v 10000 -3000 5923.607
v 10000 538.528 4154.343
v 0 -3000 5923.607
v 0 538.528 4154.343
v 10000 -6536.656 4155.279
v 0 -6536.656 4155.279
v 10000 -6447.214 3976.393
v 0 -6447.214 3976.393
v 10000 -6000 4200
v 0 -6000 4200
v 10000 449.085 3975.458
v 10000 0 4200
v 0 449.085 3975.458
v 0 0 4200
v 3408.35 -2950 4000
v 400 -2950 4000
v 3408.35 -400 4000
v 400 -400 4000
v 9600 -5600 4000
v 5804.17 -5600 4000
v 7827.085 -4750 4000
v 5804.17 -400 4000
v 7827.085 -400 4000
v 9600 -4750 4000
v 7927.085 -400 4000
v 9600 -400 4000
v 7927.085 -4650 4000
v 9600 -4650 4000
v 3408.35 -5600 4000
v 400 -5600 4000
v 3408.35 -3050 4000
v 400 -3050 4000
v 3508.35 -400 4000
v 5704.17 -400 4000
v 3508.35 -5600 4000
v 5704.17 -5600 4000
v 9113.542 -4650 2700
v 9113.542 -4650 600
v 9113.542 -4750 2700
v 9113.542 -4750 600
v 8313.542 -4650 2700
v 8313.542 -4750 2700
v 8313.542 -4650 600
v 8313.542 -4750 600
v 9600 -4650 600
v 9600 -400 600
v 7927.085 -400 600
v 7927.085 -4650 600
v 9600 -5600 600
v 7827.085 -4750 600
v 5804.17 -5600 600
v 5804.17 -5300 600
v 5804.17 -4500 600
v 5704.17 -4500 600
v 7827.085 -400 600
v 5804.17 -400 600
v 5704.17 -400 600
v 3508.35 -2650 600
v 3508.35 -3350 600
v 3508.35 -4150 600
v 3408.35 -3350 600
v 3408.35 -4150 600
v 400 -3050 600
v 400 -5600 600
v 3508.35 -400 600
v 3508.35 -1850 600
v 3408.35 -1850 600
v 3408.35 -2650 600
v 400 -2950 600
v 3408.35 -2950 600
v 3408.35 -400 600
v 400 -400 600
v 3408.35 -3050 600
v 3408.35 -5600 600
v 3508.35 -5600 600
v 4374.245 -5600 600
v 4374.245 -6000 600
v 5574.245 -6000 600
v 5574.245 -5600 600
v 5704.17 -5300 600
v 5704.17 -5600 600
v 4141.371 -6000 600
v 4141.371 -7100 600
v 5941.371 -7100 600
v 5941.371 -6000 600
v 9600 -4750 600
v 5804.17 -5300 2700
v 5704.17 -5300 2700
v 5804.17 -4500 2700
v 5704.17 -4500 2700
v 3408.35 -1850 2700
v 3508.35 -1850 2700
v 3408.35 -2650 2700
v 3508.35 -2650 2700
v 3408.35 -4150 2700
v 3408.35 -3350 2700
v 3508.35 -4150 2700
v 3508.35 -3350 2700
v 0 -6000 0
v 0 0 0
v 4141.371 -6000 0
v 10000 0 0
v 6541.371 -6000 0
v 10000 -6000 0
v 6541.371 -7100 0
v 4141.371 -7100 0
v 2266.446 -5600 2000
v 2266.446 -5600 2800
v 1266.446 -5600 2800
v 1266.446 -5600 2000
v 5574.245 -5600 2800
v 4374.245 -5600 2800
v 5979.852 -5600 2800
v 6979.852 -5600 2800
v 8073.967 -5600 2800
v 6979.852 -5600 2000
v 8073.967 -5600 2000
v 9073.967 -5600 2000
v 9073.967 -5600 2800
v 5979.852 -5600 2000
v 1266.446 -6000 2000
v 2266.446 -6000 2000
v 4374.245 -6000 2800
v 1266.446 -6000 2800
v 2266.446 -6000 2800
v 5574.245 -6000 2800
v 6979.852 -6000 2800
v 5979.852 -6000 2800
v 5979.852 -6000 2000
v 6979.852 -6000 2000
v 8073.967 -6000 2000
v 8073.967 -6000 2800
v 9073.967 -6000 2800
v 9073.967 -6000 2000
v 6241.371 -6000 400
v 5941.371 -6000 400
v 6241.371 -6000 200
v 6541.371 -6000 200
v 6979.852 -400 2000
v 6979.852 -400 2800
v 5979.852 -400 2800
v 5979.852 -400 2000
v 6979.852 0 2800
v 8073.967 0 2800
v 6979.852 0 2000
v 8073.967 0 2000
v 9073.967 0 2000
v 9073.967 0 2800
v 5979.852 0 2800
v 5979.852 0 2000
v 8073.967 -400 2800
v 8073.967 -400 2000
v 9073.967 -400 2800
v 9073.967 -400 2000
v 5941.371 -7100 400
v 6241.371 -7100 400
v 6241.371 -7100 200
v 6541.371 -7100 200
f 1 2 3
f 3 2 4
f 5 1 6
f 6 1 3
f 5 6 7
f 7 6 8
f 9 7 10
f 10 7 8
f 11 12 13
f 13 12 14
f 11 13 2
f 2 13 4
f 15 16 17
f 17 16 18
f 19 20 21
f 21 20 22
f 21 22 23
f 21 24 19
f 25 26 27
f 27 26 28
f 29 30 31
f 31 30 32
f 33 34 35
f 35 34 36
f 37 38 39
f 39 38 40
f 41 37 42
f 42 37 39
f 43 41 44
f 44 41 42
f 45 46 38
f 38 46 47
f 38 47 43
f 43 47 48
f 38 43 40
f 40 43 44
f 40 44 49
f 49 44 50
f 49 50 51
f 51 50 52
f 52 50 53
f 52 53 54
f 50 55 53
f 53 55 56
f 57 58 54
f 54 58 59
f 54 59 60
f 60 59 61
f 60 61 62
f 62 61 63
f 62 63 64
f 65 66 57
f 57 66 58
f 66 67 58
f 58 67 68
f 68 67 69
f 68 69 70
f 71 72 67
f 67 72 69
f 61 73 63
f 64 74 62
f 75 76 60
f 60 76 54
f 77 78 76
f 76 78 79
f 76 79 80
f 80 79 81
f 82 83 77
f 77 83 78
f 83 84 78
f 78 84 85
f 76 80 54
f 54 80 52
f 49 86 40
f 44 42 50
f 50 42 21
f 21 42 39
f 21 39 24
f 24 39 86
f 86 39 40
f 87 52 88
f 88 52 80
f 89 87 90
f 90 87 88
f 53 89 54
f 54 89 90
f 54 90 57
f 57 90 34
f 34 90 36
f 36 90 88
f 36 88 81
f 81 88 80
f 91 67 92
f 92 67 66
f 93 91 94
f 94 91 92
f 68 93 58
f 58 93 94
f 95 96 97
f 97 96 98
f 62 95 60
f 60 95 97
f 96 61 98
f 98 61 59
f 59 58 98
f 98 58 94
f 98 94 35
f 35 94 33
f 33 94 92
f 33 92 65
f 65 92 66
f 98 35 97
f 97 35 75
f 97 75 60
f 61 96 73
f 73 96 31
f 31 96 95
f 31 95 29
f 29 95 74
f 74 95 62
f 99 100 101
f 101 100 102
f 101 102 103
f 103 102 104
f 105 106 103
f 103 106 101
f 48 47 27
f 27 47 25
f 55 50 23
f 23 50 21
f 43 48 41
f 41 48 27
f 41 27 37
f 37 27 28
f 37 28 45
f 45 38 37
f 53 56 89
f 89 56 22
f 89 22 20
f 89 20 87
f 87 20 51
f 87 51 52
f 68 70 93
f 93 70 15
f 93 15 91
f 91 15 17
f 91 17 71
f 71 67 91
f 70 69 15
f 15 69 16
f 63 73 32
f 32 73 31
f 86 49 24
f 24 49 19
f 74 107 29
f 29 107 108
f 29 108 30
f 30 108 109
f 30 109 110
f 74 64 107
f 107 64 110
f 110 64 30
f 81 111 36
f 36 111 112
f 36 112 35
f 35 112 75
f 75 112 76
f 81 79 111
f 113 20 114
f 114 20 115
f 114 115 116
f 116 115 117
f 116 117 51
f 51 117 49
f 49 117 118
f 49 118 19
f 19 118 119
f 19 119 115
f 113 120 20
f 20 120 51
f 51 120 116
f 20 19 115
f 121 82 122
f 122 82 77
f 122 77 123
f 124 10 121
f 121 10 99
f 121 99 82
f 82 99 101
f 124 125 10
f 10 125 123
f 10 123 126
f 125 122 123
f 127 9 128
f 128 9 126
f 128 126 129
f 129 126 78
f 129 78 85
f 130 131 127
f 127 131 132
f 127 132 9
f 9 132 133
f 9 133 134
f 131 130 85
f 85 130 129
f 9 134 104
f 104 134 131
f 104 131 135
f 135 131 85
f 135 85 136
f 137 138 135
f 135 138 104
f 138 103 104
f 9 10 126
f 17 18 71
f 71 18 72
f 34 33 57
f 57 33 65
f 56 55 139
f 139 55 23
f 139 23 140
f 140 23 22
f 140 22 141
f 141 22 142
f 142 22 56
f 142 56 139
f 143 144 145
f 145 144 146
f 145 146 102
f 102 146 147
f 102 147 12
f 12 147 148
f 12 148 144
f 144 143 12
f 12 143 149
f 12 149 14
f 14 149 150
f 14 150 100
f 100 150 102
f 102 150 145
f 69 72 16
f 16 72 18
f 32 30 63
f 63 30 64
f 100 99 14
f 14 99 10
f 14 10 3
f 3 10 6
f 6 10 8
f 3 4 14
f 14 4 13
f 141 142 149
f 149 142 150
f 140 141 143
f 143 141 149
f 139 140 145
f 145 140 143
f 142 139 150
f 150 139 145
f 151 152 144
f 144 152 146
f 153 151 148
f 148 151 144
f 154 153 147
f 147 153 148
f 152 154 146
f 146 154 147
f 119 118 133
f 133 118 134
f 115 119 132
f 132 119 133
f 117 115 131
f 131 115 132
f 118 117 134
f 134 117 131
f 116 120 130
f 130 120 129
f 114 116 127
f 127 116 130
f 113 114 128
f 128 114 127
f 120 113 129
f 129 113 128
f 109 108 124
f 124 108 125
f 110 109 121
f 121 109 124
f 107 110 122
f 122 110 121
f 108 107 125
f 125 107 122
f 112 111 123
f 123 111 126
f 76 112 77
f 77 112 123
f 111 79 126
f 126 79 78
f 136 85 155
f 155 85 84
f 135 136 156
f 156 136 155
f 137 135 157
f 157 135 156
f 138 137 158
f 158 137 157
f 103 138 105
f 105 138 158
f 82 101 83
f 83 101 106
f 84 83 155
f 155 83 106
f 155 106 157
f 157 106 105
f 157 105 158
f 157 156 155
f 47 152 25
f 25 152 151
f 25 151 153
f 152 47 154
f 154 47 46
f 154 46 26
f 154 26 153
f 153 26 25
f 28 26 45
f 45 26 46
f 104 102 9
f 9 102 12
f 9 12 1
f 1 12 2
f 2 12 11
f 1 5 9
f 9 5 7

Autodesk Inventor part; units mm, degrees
ref_plane "YZ Plane" through (0, 0, 0) normal (1, 0, 0) x (0, 1, 0)
ref_plane "XZ Plane" through (0, 0, 0) normal (0, 1, 0) x (-1, 0, 0)
ref_plane "XY Plane" through (0, 0, 0) normal (0, 0, 1) x (1, 0, 0)
sketch "Schizzo1" plane through (0, 0, 0) normal (0, 0, 1) x (1, 0, 0)
  line L0 (0, 0) -> (10000, 0)
  line L1 (10000, 0) -> (10000, -6000)
  line L2 (10000, -6000) -> (0, -6000)
  line L3 (0, -6000) -> (0, 0)
  line L4 (1713.9386, 0) -> (1713.9386, -400)
  line L5 (0, -1184.5275) -> (400, -1184.5275)
  line L6 (8459.3415, -6000) -> (8459.3415, -5600)
  line L7 (10000, -4879.2459) -> (9600, -4879.2459)
  line L8 (400, -400) -> (9600, -400)
  line L9 (9600, -400) -> (9600, -5600)
  line L10 (9600, -5600) -> (400, -5600)
  line L11 (400, -5600) -> (400, -400)
  dimension "d0" = 10000
  dimension "d1" = 6000
  dimension "d2" = 400
  dimension "d3" = 400
  dimension "d4" = 400
  dimension "d5" = 400
extrude "Estrusione1" add sketch "Schizzo1" along normal blind 4000 contours L0 L4 L8 L11 L5 L3 | L0 L1 L7 L9 L8 L4 | L5 L11 L10 L6 L2 L3 | L1 L2 L6 L10 L9 L7
sketch "Schizzo2" plane through (0, -6000, 0) normal (0, -1, 0) x (1, 0, 0)
  line L0 (10000, 0) -> (0, 0) projected
  line L1 (6541.3712, 0) -> (6541.3712, 200)
  line L2 (6541.3712, 0) -> (6741.3712, 0) construction
  line L3 (6541.3712, 200) -> (6241.3712, 200)
  line L4 (6241.3712, 200) -> (6241.3712, 400)
  line L5 (6241.3712, 400) -> (5941.3712, 400)
  line L6 (5941.3712, 400) -> (5941.3712, 600)
  line L7 (5941.3712, 600) -> (5641.3712, 600)
  line L8 (5641.3712, 600) -> (4141.3712, 600)
  line L9 (4141.3712, 600) -> (4141.3712, 0)
  line L10 (4141.3712, 0) -> (6541.3712, 0)
  dimension "d8" = 200
  dimension "d9" = 90
  dimension "d10" = 300
  dimension "d11" = 200
  dimension "d12" = 300
  dimension "d13" = 200
  dimension "d14" = 300
  dimension "d15" = 1500
extrude "Estrusione2" add sketch "Schizzo2" along normal blind 1100
sketch "Schizzo3" plane through (0, -6000, 4000) normal (0, -1, 0) x (1, 0, 0)
  line L0 (4141.3712, -3400) -> (5941.3712, -3400) projected
  line L1 (4374.2446, -3400) -> (5574.2446, -3400)
  line L2 (5574.2446, -3400) -> (5574.2446, -1200)
  line L3 (5574.2446, -1200) -> (4374.2446, -1200)
  line L4 (4374.2446, -1200) -> (4374.2446, -3400)
  point P0 (0, -4000)
  dimension "d18" = 1200
  dimension "d19" = 2200
extrude "Estrusione3" cut sketch "Schizzo3" against normal blind 1000
sketch "Schizzo4" plane through (0, -6000, 4000) normal (0, -1, 0) x (1, 0, 0)
  line L0 (766.9374, -1200) -> (9600, -1200)
  line L1 (9600, -4000) -> (9600, 0) projected
  line L2 (1266.4462, -1200) -> (2266.4462, -1200)
  line L3 (2266.4462, -1200) -> (2266.4462, -2000)
  line L4 (2266.4462, -2000) -> (1266.4462, -2000)
  line L5 (1266.4462, -2000) -> (1266.4462, -1200)
  line L6 (5979.8517, -1200) -> (6979.8517, -1200)
  line L7 (6979.8517, -1200) -> (6979.8517, -2000)
  line L8 (6979.8517, -2000) -> (5979.8517, -2000)
  line L9 (5979.8517, -2000) -> (5979.8517, -1200)
  line L10 (8073.967, -1200) -> (9073.967, -1200)
  line L11 (9073.967, -1200) -> (9073.967, -2000)
  line L12 (9073.967, -2000) -> (8073.967, -2000)
  line L13 (8073.967, -2000) -> (8073.967, -1200)
  point P0 (0, -4000)
  dimension "d22" = 1000
  dimension "d23" = 800
  dimension "d24" = 1000
  dimension "d25" = 800
  dimension "d26" = 1000
  dimension "d27" = 800
extrude "Estrusione4" cut sketch "Schizzo4" against normal blind 1000
sketch "Schizzo5" plane through (0, 0, 0) normal (0, 1, 0) x (1, 0, 0)
  line L0 (1266.4462, -2800) -> (2266.4462, -2800) projected
  line L1 (1266.4462, -2800) -> (9246.6326, -2800)
  line L2 (8073.967, -2800) -> (9073.967, -2800) projected
  line L3 (9073.967, -2000) -> (8073.967, -2000) projected
  line L4 (9073.967, -2800) -> (8073.967, -2800)
  line L5 (8073.967, -2800) -> (8073.967, -2000)
  line L6 (8073.967, -2000) -> (9073.967, -2000)
  line L7 (9073.967, -2000) -> (9073.967, -2800)
  line L8 (6979.8517, -2800) -> (6979.8517, -2000) projected
  line L9 (5979.8517, -2000) -> (6979.8517, -2000) projected
  line L10 (6979.8517, -2800) -> (5979.8517, -2800)
  line L11 (5979.8517, -2800) -> (5979.8517, -2000)
  line L12 (5979.8517, -2000) -> (6979.8517, -2000)
  line L13 (6979.8517, -2000) -> (6979.8517, -2800)
  point P0 (0, 0)
extrude "Estrusione5" cut sketch "Schizzo5" against normal blind 1000
sketch "Schizzo6" plane through (0, 0, 0) normal (0, 0, -1) x (-1, 0, 0)
  line L0 (0, -6000) -> (-10000, -6000) projected
  line L1 (-10000, -6000) -> (-10000, 0) projected
  line L2 (0, -6000) -> (-10000, -6000)
  line L3 (-10000, -6000) -> (-10000, 0)
  line L4 (-10000, 0) -> (0, 0)
  line L5 (0, 0) -> (0, -6000)
extrude "Estrusione6" add sketch "Schizzo6" against normal blind 600
sketch "Schizzo7" plane through (400, -400, 600) normal (0, 0, 1) x (1, 0, 0)
  point P0 (-400, 400)
sketch "Schizzo8" plane through (0, 0, 4000) normal (0, 0, 1) x (1, 0, 0)
  line L0 (0, -6000) -> (10000, -6000) projected
  line L1 (3458.3504, -6000) -> (3458.3504, 0)
  line L2 (5574.2446, -6000) -> (5574.2446, -5600) projected
  line L3 (5574.2446, -5800) -> (5754.1703, -5800)
  line L4 (5754.1703, -5800) -> (5754.1703, 0)
  line L5 (10000, 0) -> (0, 0) projected
  line L6 (5754.1703, -5800) -> (5754.1703, -6000)
  line L7 (3458.3504, -3000) -> (0, -3000)
  line L8 (0, 0) -> (0, -6000) projected
  line L9 (9600, -400) -> (9600, -5600) projected
  line L10 (9600, -5600) -> (400, -5600) projected
  line L11 (7877.0851, -4700) -> (9600, -4700)
  line L12 (3508.3504, -6000) -> (3408.3504, -6000)
  line L13 (3408.3504, -6000) -> (3408.3504, 0)
  line L14 (3408.3504, 0) -> (3508.3504, 0)
  line L15 (3508.3504, 0) -> (3508.3504, -6000)
  line L16 (3508.3504, -6000) -> (3408.3504, 0) construction
  line L17 (3408.3504, -6000) -> (3508.3504, 0) construction
  line L18 (-50, -3050) -> (-50, -2950)
  line L19 (-50, -2950) -> (3508.3504, -2950)
  line L20 (3508.3504, -2950) -> (3508.3504, -3050)
  line L21 (3508.3504, -3050) -> (-50, -3050)
  line L22 (-50, -3050) -> (3508.3504, -2950) construction
  line L23 (-50, -2950) -> (3508.3504, -3050) construction
  line L24 (5804.1703, -5800) -> (5704.1703, -5800)
  line L25 (5704.1703, -5800) -> (5704.1703, 0)
  line L26 (5704.1703, 0) -> (5804.1703, 0)
  line L27 (5804.1703, 0) -> (5804.1703, -5800)
  line L28 (5804.1703, -5800) -> (5704.1703, 0) construction
  line L29 (5704.1703, -5800) -> (5804.1703, 0) construction
  line L30 (5804.1703, -5800) -> (5904.1703, -5800) construction
  line L31 (9600, -4750) -> (9600, -4650)
  line L32 (9600, -4650) -> (7877.0851, -4650)
  line L33 (7877.0851, -4650) -> (7877.0851, -4750)
  line L34 (7877.0851, -4750) -> (9600, -4750)
  line L35 (9600, -4750) -> (7877.0851, -4650) construction
  line L36 (9600, -4650) -> (7877.0851, -4750) construction
  line L37 (7877.0851, 0) -> (7877.0851, -4750)
  line L38 (7927.0851, -4750) -> (7827.0851, -4750)
  line L39 (7827.0851, -4750) -> (7827.0851, 0)
  line L40 (7827.0851, 0) -> (7927.0851, 0)
  line L41 (7927.0851, 0) -> (7927.0851, -4750)
  line L42 (7927.0851, -4750) -> (7827.0851, 0) construction
  line L43 (7827.0851, -4750) -> (7927.0851, 0) construction
  point P0 (1729.1752, -3000)
  point P1 (5754.1703, -2900)
  point P2 (8738.5426, -4700)
  point P3 (7877.0851, -2375)
  point P4 (7927.0851, -4650)
  point P5 (3408.3504, -3050)
  point P6 (3408.3504, -2950)
  dimension "d35" = 100
  dimension "d36" = 100
  dimension "d37" = 100
  dimension "d38" = 180
  dimension "d39" = 100
  dimension "d40" = 100
extrude "Estrusione7" add sketch "Schizzo8" against normal blind 4000 contours L13 L10 L1 L0 | L21 L18 L19 L8 | L8 L7 L13 L21 | L1 L10 L15 L0 | L13 L21 L1 L10 | L8 L19 L13 L7 | L13 L7 L1 L21 | L1 L21 L15 L10 | L13 L19 L1 L7 | L1 L19 L15 L21 | L13 L5 L1 L19 | L1 L5 L15 L19 | L3 L25 L10 L4 | L4 L10 L27 L24 | L25 L5 L4 L10 | L4 L5 L27 L10 | L5 L37 L33 L38 L39 | L34 L41 L11 L9 | L5 L41 L32 L37 | L11 L41 L32 L9 | L34 L33 L11 L41 | L32 L41 L11 L33
sketch "Schizzo9" plane through (0, 0, 4000) normal (0, 0, 1) x (1, 0, 0)
  line L0 (0, -3050) -> (-50, -3050) projected
  line L1 (0, -2950) -> (-50, -2950) projected
  line L2 (-50, -3050) -> (0, -3050)
  line L3 (0, -3050) -> (0, -2950)
  line L4 (0, -2950) -> (-50, -2950)
  line L5 (-50, -2950) -> (-50, -3050)
  point P0 (0, 0)
extrude "Estrusione8" cut sketch "Schizzo9" against normal blind 4000
sketch "Schizzo10" plane through (3508.3504, -5600, 4000) normal (1, 0, 0) x (0, 0, -1)
  line L0 (3400, 0) -> (3400, 2550) projected
  line L1 (3400, 2550) -> (3400, 2250)
  line L2 (3400, 5200) -> (3400, 0) projected
  line L3 (3400, 2250) -> (1300, 2250)
  line L4 (3400, 2250) -> (5500, 2250) construction
  line L5 (1300, 2250) -> (1300, 1450)
  line L6 (1300, 1450) -> (3400, 1450)
  line L7 (3400, 2250) -> (3400, 1450)
  line L8 (0, 2650) -> (3400, 2650) projected
  line L9 (3400, 2650) -> (3400, 2950)
  line L10 (3400, 2950) -> (1300, 2950)
  line L11 (1300, 2950) -> (1300, 3750)
  line L12 (1300, 3750) -> (3400, 3750)
  line L13 (3400, 2950) -> (3400, 3750)
  point P0 (4000, 5600)
  dimension "d45" = 300
  dimension "d46" = 2100
  dimension "d47" = 180
  dimension "d48" = 800
  dimension "d49" = 300
  dimension "d50" = 800
  dimension "d51" = 90
extrude "Estrusione9" cut sketch "Schizzo10" against normal blind 1000
sketch "Schizzo11" plane through (5704.1703, -5600, 4000) normal (-1, 0, 0) x (0, 0, 1)
  line L0 (-3400, 0) -> (-3400, 5200) projected
  line L1 (-3400, 0) -> (-3400, 300)
  line L2 (-3400, 300) -> (-1300, 300)
  line L3 (-1300, 300) -> (-1300, 1100)
  line L4 (-1300, 1100) -> (-3400, 1100)
  line L5 (-3400, 5200) -> (-3400, 0) projected
  line L6 (-3400, 1100) -> (-3400, 300)
  point P0 (-4000, 5600)
  dimension "d54" = 300
  dimension "d55" = 2100
  dimension "d56" = 90
  dimension "d57" = 800
  dimension "d58" = 2100
  dimension "d59" = 90
extrude "Estrusione10" cut sketch "Schizzo11" against normal blind 1000
sketch "Schizzo12" plane through (7827.0851, -4750, 4000) normal (0, -1, 0) x (1, 0, 0)
  line L0 (0, 0) -> (1772.9149, 0) projected
  line L1 (886.4574, 0) -> (886.4574, -3400)
  line L2 (1772.9149, -3400) -> (0, -3400) projected
  line L3 (886.4574, -3400) -> (1286.4574, -3400)
  line L4 (1286.4574, -3400) -> (1286.4574, -1300)
  line L5 (1286.4574, -1300) -> (486.4574, -1300)
  line L6 (486.4574, -1300) -> (486.4574, -3400)
  line L7 (486.4574, -3400) -> (1286.4574, -3400)
  point P0 (-7827.0851, -4000)
  dimension "d62" = 400
  dimension "d63" = 2100
  dimension "d64" = 90
  dimension "d65" = 800
  dimension "d66" = 90
  dimension "d67" = 2100
  dimension "d68" = 90
extrude "Estrusione11" cut sketch "Schizzo12" against normal blind 1000
sketch "Schizzo13" plane through (0, 0, 4000) normal (0, 0, 1) x (1, 0, 0)
  line L0 (10000, 0) -> (0, 0) projected
  line L1 (0, -6000) -> (10000, -6000) projected
  line L2 (0, 0) -> (10000, 0)
  line L3 (10000, 0) -> (10000, -6000)
  line L4 (10000, -6000) -> (0, -6000)
  line L5 (0, -6000) -> (0, 0)
extrude "Estrusione12" add sketch "Schizzo13" along normal blind 200
sketch "Schizzo14" plane through (10000, -6000, 0) normal (1, 0, 0) x (0, 0, -1)
  line L0 (-4200, 0) -> (-4200, 6000) projected
  line L1 (-4200, 3000) -> (-5700, 3000)
  line L2 (0, 0) -> (-4200, 0) projected
  line L3 (-5700, 3000) -> (-4200, 0)
  line L4 (-4200, 0) -> (-3976.3932, -447.2136)
  line L5 (-3976.3932, -447.2136) -> (-4155.2786, -536.6563)
  line L6 (-4155.2786, -536.6563) -> (-5923.6068, 3000)
  line L7 (-5700, 3000) -> (-4200, 6000)
  line L8 (0, 6000) -> (-4200, 6000) projected
  line L9 (-4200, 0) -> (-4200, 6000)
  line L10 (-4352.4612, 5695.0777) -> (-3975.4575, 6449.0849)
  line L11 (-3975.4575, 6449.0849) -> (-4154.343, 6538.5277)
  line L12 (-4154.343, 6538.5277) -> (-5923.6068, 3000)
  dimension "d73" = 1500
  dimension "d74" = 500
  dimension "d75" = 200
  dimension "d78" = 200
extrude "Estrusione13" add sketch "Schizzo14" against normal blind 10000
properties part number "casa sip"
